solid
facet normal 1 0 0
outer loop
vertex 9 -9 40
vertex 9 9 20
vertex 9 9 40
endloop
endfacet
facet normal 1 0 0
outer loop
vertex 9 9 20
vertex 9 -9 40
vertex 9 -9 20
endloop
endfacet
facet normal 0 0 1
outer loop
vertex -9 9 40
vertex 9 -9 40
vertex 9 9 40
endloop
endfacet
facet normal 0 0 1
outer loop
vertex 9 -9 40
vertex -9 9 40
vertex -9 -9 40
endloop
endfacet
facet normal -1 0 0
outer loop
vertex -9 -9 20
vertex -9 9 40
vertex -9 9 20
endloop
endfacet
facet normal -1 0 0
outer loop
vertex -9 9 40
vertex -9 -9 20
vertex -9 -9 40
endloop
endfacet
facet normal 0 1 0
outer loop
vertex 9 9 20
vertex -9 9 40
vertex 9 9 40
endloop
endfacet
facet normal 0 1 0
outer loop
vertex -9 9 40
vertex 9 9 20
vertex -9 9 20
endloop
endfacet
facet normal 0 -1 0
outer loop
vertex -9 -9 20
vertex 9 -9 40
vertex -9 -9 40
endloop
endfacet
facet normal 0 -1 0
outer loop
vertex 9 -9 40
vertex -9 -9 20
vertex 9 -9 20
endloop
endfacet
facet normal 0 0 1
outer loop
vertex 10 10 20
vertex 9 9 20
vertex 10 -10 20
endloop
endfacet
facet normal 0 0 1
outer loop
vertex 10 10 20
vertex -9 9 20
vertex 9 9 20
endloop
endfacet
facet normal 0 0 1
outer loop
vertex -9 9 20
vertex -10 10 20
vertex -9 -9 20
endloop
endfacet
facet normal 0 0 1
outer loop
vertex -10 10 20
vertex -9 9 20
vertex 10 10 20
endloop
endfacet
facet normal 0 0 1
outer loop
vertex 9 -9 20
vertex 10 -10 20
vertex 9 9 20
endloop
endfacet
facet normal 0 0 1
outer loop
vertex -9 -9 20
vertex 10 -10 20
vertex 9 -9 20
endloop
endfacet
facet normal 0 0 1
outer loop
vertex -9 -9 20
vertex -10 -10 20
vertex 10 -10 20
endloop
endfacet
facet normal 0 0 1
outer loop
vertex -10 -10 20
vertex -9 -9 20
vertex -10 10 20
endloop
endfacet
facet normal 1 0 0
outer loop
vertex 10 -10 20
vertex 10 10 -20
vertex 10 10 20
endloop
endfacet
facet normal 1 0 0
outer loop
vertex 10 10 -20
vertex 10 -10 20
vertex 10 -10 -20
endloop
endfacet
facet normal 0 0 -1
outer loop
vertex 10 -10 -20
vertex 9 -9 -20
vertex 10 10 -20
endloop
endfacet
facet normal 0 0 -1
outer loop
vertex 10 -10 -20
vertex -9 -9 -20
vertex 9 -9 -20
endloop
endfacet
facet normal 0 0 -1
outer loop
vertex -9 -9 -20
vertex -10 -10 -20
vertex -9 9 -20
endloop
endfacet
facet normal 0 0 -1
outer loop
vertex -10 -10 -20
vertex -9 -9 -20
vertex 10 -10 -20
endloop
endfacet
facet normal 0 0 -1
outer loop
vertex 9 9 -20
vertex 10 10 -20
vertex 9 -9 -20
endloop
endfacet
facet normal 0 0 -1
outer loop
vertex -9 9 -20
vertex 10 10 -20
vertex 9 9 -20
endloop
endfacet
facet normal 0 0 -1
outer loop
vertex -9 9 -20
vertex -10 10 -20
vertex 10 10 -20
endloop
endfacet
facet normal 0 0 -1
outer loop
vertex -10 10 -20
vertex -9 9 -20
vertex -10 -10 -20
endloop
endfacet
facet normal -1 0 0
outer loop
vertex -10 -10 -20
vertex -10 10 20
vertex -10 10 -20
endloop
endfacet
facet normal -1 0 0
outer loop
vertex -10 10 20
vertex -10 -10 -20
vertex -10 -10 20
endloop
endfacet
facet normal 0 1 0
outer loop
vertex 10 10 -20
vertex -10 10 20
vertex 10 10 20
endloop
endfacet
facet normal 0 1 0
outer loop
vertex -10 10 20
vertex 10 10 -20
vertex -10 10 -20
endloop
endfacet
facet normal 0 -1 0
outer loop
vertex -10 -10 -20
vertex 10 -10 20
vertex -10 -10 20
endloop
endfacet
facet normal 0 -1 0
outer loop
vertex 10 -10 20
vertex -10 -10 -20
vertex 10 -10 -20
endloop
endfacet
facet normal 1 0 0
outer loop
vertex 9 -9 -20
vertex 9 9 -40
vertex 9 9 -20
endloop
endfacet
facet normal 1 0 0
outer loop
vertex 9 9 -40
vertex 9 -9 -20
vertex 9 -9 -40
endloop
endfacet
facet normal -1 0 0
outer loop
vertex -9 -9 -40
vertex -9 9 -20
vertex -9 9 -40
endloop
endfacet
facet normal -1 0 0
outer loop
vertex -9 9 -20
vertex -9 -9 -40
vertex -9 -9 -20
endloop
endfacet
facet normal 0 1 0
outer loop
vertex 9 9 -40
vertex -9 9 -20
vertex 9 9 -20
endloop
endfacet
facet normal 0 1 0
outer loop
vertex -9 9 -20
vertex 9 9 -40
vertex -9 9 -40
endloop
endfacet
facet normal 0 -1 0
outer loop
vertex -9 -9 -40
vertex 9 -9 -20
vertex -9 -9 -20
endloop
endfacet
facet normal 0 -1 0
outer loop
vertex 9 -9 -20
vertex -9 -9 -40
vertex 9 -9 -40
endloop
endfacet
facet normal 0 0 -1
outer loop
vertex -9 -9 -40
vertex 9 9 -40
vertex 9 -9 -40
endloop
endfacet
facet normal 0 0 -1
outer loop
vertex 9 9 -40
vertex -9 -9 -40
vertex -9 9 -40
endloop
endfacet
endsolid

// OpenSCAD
// Dimensions for the components
central_block_size = [20, 20, 40]; // Central block dimensions
spacer_block_size = [18, 18, 10];  // Spacer block dimensions
connector_block_size = [18, 18, 10]; // Connector block dimensions

// Function to create a central block
module central_block() {
    cube(central_block_size, center = true);
}

// Function to create a spacer block
module spacer_block() {
    cube(spacer_block_size, center = true);
}

// Function to create a connector block
module connector_block() {
    cube(connector_block_size, center = true);
}

// Assembly of the model
module assembly() {
    // Layer 1: Top connector block
    translate([0, 0, central_block_size[2] / 2 + spacer_block_size[2] + connector_block_size[2] / 2])
        connector_block();

    // Layer 2: Top spacer block
    translate([0, 0, central_block_size[2] / 2 + spacer_block_size[2] / 2])
        spacer_block();

    // Layer 3: Central block
    translate([0, 0, 0])
        central_block();

    // Layer 4: Bottom spacer block
    translate([0, 0, -(central_block_size[2] / 2 + spacer_block_size[2] / 2)])
        spacer_block();

    // Layer 5: Bottom connector block
    translate([0, 0, -(central_block_size[2] / 2 + spacer_block_size[2] + connector_block_size[2] / 2)])
        connector_block();
}

// Render the assembly
assembly();
